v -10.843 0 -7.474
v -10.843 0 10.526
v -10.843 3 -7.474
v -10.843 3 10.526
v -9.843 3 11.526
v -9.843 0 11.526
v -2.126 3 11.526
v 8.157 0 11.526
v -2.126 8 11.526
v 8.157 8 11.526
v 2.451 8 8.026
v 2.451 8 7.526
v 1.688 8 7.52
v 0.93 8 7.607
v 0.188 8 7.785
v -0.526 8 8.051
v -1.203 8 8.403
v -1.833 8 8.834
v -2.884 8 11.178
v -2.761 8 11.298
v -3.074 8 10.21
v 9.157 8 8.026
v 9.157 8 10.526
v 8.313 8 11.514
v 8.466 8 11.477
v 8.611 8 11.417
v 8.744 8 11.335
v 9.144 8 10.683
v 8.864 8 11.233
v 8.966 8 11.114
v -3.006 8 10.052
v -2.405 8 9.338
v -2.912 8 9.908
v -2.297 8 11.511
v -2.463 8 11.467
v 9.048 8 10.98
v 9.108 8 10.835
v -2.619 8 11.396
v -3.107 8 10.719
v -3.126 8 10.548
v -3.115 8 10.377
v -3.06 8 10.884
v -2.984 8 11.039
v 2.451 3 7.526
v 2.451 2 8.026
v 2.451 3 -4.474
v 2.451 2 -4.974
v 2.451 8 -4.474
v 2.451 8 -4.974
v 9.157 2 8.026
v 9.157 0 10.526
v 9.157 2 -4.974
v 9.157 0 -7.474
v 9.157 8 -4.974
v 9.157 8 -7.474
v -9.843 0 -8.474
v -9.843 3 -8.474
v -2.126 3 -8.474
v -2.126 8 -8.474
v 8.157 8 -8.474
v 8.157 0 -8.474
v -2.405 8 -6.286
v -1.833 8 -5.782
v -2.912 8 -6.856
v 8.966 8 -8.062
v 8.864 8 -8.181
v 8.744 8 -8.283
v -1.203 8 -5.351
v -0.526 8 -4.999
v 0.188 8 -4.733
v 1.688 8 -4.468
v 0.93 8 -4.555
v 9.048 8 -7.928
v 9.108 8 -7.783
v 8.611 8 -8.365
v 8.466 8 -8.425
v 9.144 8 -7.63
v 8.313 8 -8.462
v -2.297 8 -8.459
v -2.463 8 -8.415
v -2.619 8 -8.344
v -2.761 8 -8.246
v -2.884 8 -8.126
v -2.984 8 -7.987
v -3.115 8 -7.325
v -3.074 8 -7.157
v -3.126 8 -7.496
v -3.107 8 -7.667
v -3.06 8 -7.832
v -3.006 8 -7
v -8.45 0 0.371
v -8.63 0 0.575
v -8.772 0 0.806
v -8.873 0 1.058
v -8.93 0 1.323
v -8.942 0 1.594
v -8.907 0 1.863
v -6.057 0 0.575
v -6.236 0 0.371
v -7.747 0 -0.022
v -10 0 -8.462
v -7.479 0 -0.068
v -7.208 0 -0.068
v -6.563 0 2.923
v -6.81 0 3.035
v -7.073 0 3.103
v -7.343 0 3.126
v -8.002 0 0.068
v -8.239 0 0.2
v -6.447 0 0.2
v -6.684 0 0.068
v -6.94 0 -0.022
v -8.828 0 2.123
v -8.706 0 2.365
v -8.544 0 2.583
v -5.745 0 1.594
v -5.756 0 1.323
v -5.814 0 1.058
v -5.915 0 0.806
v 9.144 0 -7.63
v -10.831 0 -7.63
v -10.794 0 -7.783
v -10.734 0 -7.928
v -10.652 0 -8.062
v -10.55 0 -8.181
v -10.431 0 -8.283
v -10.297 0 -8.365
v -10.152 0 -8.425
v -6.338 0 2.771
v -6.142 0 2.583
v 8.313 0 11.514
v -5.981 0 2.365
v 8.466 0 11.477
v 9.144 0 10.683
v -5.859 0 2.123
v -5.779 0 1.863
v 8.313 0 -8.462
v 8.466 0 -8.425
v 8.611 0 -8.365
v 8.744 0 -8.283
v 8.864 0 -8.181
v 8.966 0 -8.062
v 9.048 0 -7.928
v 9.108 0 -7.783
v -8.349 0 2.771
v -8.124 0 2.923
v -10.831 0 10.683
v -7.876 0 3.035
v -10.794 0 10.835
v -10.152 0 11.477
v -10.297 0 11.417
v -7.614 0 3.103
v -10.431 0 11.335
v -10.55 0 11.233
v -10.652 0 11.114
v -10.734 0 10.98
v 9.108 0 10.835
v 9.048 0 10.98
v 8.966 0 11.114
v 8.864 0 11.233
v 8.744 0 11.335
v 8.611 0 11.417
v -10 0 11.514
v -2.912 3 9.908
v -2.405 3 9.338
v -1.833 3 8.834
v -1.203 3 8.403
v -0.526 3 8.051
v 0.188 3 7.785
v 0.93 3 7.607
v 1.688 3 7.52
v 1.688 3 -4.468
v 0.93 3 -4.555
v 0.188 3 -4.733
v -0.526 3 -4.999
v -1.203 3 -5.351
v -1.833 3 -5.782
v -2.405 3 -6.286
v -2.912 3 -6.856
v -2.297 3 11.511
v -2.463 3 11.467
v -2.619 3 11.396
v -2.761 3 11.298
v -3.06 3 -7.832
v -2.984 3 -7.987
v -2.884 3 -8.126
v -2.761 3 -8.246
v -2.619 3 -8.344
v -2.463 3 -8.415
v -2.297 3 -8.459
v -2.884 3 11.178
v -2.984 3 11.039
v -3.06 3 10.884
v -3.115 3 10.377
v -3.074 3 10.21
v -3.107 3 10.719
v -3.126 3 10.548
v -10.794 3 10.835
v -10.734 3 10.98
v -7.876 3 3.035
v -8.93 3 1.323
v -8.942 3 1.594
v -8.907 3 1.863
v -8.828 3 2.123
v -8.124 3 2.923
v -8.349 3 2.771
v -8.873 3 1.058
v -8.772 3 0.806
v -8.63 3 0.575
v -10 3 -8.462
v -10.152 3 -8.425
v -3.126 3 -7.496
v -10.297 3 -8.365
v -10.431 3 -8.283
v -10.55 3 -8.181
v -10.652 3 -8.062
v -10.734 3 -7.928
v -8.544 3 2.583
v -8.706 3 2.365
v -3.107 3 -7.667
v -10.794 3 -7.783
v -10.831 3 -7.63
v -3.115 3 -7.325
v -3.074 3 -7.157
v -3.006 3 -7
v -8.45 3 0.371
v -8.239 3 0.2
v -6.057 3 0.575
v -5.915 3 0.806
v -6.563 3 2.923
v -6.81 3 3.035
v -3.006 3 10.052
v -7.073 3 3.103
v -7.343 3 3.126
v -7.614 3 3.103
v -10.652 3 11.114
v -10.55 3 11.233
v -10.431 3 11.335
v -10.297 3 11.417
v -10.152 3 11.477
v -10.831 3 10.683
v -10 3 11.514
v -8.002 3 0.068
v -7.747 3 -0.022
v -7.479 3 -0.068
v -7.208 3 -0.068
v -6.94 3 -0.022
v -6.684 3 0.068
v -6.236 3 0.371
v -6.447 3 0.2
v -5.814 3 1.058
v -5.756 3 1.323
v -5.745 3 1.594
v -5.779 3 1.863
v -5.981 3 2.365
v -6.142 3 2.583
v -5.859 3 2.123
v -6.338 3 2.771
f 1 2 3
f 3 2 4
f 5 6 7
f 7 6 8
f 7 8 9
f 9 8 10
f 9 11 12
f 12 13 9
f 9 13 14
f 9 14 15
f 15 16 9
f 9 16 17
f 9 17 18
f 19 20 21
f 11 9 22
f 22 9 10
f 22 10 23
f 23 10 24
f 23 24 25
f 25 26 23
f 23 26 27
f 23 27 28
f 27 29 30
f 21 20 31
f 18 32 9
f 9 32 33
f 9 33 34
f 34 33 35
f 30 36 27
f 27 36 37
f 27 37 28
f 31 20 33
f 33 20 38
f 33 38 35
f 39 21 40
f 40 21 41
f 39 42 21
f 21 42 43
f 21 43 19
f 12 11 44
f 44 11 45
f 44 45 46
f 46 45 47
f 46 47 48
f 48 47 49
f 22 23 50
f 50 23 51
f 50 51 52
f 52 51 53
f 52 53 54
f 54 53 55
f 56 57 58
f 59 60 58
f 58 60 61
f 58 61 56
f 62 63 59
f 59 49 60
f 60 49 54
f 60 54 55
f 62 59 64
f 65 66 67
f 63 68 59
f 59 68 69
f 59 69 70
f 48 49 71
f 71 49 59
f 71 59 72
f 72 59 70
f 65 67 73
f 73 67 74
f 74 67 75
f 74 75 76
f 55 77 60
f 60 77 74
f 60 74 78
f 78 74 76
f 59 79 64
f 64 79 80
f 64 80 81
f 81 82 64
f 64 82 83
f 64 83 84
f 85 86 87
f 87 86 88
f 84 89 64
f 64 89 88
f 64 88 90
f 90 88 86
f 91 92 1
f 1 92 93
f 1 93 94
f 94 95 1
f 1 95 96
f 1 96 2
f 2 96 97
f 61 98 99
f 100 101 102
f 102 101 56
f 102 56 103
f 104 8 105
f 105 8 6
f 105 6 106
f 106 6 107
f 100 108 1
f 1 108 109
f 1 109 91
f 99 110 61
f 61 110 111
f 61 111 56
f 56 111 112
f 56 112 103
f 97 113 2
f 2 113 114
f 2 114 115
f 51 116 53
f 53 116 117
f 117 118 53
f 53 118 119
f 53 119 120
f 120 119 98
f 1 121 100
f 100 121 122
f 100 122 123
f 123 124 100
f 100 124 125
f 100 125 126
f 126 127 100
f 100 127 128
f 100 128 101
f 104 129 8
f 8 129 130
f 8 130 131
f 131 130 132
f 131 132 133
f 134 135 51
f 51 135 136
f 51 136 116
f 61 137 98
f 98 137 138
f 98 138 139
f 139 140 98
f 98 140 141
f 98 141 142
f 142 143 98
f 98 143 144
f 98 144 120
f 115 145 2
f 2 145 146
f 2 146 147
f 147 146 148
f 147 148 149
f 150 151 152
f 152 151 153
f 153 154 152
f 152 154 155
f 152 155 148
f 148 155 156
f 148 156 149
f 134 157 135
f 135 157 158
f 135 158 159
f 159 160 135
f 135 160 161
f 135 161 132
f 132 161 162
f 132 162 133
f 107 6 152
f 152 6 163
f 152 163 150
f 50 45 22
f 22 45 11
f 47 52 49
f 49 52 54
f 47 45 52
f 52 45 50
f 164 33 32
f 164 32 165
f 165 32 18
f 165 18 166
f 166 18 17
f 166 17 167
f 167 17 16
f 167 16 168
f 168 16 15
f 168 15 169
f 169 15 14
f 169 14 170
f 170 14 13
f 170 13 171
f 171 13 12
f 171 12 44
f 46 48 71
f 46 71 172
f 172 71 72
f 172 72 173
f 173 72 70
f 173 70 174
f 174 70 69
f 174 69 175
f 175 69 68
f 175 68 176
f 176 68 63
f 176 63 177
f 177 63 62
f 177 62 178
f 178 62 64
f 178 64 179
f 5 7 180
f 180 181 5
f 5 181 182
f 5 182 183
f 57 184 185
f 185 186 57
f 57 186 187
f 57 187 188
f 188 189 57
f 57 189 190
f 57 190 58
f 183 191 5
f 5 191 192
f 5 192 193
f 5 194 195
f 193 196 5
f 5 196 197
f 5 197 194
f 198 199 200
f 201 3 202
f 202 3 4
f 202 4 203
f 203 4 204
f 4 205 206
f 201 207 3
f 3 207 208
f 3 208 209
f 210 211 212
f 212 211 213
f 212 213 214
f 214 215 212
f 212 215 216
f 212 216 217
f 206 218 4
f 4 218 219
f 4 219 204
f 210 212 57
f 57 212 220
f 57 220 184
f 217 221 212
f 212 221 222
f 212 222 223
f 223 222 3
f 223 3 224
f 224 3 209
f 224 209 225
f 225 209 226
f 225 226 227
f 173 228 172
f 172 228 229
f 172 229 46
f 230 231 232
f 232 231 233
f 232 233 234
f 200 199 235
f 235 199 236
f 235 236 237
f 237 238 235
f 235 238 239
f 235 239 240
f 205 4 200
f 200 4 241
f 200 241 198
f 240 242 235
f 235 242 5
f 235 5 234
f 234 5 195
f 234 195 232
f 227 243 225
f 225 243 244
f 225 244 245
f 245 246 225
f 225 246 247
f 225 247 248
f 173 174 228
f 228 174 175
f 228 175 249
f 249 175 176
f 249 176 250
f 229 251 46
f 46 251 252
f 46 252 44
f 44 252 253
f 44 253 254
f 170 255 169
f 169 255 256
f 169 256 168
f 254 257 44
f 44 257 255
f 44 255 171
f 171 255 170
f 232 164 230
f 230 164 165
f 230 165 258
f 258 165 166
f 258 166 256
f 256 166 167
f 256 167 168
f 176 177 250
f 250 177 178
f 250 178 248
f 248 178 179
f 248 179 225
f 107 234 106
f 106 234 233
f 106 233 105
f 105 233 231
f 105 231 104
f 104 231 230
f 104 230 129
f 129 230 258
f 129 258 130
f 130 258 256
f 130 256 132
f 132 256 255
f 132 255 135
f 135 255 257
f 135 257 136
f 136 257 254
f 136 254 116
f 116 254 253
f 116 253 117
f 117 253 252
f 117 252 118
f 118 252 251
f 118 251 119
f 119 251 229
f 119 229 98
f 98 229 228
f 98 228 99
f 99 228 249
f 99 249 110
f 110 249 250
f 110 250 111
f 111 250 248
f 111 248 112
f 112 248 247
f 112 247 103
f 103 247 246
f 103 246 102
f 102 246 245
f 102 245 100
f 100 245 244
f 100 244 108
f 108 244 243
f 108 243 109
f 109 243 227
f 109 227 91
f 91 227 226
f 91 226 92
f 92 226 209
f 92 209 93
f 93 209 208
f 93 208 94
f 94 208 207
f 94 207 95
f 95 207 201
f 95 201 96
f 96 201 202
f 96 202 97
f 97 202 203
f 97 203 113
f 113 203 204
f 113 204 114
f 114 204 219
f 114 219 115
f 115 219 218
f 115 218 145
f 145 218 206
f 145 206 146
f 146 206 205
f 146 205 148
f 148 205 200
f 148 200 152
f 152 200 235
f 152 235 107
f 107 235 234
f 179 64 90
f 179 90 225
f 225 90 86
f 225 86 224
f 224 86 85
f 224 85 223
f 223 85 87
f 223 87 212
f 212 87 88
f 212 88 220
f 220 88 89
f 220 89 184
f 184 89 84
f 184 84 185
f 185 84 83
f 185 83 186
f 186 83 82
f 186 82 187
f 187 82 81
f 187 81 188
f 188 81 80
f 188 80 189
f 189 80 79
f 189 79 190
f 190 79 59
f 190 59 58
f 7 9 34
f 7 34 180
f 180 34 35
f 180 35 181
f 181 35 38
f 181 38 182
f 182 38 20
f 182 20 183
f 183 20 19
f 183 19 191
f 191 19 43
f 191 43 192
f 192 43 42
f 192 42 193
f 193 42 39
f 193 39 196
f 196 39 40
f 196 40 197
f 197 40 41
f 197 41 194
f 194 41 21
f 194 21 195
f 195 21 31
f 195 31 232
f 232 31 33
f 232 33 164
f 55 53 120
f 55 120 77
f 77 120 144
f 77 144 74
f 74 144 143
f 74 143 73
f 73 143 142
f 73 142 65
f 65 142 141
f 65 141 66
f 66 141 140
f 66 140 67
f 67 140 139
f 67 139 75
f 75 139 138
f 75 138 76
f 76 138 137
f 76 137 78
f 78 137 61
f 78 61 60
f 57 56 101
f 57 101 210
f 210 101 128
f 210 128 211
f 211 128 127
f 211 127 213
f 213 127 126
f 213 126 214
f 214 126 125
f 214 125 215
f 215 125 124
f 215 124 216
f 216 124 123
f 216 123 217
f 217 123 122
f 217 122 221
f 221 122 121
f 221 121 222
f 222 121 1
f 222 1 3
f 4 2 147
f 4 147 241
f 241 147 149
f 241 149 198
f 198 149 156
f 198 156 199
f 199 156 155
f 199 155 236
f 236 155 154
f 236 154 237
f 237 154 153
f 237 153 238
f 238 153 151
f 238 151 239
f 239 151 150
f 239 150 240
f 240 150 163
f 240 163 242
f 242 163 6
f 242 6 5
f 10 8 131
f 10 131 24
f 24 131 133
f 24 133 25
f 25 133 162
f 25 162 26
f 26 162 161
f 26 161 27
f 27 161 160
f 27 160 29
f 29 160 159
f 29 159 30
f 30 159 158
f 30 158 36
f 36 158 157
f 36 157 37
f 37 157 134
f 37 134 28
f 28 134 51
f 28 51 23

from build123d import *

# Parameters (mm, degrees)
CROQUIS2_W              = 20
CROQUIS2_H              = 20
SALIENTE_EXTRUIR1_DEPTH = 8
CROQUIS3_W              = 6.705751287
CROQUIS3_H              = 13
CORTAR_EXTRUIR1_DEPTH   = 6
CORTAR_EXTRUIR2_DEPTH   = 5
CROQUIS6_R              = 1.6
CORTAR_EXTRUIR3_DEPTH   = 3
REDONDEO1_R             = 1


with BuildPart() as part:
    # Croquis2 → Saliente-Extruir1 (new body)
    with BuildSketch(Plane(origin=(0, 0, 0), x_dir=(1, 0, 0), z_dir=(0, 1, 0))):
        with Locations((-0.843373494, -1.526104418)):
            Rectangle(CROQUIS2_W, CROQUIS2_H)
    extrude(amount=SALIENTE_EXTRUIR1_DEPTH)

    # Croquis3 → Cortar-Extruir1 (cut)
    with BuildSketch(Plane(origin=(0, 8, 0), x_dir=(1, 0, 0), z_dir=(0, 1, 0))):
        with Locations((5.803750863, -1.526104418)):
            Rectangle(CROQUIS3_W, CROQUIS3_H)
    extrude(amount=-CORTAR_EXTRUIR1_DEPTH, mode=Mode.SUBTRACT)

    # Croquis5 → Cortar-Extruir2 (cut)
    with BuildSketch(Plane(origin=(0, 8, 0), x_dir=(1, 0, 0), z_dir=(0, 1, 0))):
        with BuildLine():
            Line((2.450875219, -7.526104418), (2.450875219, 4.473895582))
            ThreePointArc((2.450875219, 4.473895582), (2.020425803, 4.459111389), (1.589976387, 4.473895582))
            ThreePointArc((1.589976387, 4.473895582), (-1.703861847, 5.684131739), (-3.832537389, 8.473895582))
            Line((-3.832537389, 8.473895582), (-10.843373494, 8.473895582))
            Line((-10.843373494, 8.473895582), (-10.843373494, -11.526104418))
            Line((-10.843373494, -11.526104418), (-3.832537389, -11.526104418))
            ThreePointArc((-3.832537389, -11.526104418), (-1.703861847, -8.736340574), (1.589976387, -7.526104418))
            ThreePointArc((1.589976387, -7.526104418), (2.020425803, -7.511320225), (2.450875219, -7.526104418))
        make_face()
    extrude(amount=-CORTAR_EXTRUIR2_DEPTH, mode=Mode.SUBTRACT)

    # Croquis6 → Cortar-Extruir3 (cut)
    with BuildSketch(Plane(origin=(0, 3, 0), x_dir=(1, 0, 0), z_dir=(0, 1, 0))):
        with Locations(Location((-7.343373494, -1.526104418, 0), (0, 0, 270))):
            Circle(CROQUIS6_R)
    extrude(amount=-CORTAR_EXTRUIR3_DEPTH, mode=Mode.SUBTRACT)

    # Redondeo1
    redondeo1_edges = [part.edges().sort_by_distance(p)[0] for p in [
        (-10.843373494, 1.5, -8.473895582),
        (-10.843373494, 1.5, 11.526104418),
        (-3.832537389, 5.5, 11.526104418),
        (-3.832537389, 5.5, -8.473895582),
        (9.156626506, 4, -8.473895582),
        (9.156626506, 4, 11.526104418),
    ]]
    fillet(redondeo1_edges, radius=REDONDEO1_R)


solid = part.part
